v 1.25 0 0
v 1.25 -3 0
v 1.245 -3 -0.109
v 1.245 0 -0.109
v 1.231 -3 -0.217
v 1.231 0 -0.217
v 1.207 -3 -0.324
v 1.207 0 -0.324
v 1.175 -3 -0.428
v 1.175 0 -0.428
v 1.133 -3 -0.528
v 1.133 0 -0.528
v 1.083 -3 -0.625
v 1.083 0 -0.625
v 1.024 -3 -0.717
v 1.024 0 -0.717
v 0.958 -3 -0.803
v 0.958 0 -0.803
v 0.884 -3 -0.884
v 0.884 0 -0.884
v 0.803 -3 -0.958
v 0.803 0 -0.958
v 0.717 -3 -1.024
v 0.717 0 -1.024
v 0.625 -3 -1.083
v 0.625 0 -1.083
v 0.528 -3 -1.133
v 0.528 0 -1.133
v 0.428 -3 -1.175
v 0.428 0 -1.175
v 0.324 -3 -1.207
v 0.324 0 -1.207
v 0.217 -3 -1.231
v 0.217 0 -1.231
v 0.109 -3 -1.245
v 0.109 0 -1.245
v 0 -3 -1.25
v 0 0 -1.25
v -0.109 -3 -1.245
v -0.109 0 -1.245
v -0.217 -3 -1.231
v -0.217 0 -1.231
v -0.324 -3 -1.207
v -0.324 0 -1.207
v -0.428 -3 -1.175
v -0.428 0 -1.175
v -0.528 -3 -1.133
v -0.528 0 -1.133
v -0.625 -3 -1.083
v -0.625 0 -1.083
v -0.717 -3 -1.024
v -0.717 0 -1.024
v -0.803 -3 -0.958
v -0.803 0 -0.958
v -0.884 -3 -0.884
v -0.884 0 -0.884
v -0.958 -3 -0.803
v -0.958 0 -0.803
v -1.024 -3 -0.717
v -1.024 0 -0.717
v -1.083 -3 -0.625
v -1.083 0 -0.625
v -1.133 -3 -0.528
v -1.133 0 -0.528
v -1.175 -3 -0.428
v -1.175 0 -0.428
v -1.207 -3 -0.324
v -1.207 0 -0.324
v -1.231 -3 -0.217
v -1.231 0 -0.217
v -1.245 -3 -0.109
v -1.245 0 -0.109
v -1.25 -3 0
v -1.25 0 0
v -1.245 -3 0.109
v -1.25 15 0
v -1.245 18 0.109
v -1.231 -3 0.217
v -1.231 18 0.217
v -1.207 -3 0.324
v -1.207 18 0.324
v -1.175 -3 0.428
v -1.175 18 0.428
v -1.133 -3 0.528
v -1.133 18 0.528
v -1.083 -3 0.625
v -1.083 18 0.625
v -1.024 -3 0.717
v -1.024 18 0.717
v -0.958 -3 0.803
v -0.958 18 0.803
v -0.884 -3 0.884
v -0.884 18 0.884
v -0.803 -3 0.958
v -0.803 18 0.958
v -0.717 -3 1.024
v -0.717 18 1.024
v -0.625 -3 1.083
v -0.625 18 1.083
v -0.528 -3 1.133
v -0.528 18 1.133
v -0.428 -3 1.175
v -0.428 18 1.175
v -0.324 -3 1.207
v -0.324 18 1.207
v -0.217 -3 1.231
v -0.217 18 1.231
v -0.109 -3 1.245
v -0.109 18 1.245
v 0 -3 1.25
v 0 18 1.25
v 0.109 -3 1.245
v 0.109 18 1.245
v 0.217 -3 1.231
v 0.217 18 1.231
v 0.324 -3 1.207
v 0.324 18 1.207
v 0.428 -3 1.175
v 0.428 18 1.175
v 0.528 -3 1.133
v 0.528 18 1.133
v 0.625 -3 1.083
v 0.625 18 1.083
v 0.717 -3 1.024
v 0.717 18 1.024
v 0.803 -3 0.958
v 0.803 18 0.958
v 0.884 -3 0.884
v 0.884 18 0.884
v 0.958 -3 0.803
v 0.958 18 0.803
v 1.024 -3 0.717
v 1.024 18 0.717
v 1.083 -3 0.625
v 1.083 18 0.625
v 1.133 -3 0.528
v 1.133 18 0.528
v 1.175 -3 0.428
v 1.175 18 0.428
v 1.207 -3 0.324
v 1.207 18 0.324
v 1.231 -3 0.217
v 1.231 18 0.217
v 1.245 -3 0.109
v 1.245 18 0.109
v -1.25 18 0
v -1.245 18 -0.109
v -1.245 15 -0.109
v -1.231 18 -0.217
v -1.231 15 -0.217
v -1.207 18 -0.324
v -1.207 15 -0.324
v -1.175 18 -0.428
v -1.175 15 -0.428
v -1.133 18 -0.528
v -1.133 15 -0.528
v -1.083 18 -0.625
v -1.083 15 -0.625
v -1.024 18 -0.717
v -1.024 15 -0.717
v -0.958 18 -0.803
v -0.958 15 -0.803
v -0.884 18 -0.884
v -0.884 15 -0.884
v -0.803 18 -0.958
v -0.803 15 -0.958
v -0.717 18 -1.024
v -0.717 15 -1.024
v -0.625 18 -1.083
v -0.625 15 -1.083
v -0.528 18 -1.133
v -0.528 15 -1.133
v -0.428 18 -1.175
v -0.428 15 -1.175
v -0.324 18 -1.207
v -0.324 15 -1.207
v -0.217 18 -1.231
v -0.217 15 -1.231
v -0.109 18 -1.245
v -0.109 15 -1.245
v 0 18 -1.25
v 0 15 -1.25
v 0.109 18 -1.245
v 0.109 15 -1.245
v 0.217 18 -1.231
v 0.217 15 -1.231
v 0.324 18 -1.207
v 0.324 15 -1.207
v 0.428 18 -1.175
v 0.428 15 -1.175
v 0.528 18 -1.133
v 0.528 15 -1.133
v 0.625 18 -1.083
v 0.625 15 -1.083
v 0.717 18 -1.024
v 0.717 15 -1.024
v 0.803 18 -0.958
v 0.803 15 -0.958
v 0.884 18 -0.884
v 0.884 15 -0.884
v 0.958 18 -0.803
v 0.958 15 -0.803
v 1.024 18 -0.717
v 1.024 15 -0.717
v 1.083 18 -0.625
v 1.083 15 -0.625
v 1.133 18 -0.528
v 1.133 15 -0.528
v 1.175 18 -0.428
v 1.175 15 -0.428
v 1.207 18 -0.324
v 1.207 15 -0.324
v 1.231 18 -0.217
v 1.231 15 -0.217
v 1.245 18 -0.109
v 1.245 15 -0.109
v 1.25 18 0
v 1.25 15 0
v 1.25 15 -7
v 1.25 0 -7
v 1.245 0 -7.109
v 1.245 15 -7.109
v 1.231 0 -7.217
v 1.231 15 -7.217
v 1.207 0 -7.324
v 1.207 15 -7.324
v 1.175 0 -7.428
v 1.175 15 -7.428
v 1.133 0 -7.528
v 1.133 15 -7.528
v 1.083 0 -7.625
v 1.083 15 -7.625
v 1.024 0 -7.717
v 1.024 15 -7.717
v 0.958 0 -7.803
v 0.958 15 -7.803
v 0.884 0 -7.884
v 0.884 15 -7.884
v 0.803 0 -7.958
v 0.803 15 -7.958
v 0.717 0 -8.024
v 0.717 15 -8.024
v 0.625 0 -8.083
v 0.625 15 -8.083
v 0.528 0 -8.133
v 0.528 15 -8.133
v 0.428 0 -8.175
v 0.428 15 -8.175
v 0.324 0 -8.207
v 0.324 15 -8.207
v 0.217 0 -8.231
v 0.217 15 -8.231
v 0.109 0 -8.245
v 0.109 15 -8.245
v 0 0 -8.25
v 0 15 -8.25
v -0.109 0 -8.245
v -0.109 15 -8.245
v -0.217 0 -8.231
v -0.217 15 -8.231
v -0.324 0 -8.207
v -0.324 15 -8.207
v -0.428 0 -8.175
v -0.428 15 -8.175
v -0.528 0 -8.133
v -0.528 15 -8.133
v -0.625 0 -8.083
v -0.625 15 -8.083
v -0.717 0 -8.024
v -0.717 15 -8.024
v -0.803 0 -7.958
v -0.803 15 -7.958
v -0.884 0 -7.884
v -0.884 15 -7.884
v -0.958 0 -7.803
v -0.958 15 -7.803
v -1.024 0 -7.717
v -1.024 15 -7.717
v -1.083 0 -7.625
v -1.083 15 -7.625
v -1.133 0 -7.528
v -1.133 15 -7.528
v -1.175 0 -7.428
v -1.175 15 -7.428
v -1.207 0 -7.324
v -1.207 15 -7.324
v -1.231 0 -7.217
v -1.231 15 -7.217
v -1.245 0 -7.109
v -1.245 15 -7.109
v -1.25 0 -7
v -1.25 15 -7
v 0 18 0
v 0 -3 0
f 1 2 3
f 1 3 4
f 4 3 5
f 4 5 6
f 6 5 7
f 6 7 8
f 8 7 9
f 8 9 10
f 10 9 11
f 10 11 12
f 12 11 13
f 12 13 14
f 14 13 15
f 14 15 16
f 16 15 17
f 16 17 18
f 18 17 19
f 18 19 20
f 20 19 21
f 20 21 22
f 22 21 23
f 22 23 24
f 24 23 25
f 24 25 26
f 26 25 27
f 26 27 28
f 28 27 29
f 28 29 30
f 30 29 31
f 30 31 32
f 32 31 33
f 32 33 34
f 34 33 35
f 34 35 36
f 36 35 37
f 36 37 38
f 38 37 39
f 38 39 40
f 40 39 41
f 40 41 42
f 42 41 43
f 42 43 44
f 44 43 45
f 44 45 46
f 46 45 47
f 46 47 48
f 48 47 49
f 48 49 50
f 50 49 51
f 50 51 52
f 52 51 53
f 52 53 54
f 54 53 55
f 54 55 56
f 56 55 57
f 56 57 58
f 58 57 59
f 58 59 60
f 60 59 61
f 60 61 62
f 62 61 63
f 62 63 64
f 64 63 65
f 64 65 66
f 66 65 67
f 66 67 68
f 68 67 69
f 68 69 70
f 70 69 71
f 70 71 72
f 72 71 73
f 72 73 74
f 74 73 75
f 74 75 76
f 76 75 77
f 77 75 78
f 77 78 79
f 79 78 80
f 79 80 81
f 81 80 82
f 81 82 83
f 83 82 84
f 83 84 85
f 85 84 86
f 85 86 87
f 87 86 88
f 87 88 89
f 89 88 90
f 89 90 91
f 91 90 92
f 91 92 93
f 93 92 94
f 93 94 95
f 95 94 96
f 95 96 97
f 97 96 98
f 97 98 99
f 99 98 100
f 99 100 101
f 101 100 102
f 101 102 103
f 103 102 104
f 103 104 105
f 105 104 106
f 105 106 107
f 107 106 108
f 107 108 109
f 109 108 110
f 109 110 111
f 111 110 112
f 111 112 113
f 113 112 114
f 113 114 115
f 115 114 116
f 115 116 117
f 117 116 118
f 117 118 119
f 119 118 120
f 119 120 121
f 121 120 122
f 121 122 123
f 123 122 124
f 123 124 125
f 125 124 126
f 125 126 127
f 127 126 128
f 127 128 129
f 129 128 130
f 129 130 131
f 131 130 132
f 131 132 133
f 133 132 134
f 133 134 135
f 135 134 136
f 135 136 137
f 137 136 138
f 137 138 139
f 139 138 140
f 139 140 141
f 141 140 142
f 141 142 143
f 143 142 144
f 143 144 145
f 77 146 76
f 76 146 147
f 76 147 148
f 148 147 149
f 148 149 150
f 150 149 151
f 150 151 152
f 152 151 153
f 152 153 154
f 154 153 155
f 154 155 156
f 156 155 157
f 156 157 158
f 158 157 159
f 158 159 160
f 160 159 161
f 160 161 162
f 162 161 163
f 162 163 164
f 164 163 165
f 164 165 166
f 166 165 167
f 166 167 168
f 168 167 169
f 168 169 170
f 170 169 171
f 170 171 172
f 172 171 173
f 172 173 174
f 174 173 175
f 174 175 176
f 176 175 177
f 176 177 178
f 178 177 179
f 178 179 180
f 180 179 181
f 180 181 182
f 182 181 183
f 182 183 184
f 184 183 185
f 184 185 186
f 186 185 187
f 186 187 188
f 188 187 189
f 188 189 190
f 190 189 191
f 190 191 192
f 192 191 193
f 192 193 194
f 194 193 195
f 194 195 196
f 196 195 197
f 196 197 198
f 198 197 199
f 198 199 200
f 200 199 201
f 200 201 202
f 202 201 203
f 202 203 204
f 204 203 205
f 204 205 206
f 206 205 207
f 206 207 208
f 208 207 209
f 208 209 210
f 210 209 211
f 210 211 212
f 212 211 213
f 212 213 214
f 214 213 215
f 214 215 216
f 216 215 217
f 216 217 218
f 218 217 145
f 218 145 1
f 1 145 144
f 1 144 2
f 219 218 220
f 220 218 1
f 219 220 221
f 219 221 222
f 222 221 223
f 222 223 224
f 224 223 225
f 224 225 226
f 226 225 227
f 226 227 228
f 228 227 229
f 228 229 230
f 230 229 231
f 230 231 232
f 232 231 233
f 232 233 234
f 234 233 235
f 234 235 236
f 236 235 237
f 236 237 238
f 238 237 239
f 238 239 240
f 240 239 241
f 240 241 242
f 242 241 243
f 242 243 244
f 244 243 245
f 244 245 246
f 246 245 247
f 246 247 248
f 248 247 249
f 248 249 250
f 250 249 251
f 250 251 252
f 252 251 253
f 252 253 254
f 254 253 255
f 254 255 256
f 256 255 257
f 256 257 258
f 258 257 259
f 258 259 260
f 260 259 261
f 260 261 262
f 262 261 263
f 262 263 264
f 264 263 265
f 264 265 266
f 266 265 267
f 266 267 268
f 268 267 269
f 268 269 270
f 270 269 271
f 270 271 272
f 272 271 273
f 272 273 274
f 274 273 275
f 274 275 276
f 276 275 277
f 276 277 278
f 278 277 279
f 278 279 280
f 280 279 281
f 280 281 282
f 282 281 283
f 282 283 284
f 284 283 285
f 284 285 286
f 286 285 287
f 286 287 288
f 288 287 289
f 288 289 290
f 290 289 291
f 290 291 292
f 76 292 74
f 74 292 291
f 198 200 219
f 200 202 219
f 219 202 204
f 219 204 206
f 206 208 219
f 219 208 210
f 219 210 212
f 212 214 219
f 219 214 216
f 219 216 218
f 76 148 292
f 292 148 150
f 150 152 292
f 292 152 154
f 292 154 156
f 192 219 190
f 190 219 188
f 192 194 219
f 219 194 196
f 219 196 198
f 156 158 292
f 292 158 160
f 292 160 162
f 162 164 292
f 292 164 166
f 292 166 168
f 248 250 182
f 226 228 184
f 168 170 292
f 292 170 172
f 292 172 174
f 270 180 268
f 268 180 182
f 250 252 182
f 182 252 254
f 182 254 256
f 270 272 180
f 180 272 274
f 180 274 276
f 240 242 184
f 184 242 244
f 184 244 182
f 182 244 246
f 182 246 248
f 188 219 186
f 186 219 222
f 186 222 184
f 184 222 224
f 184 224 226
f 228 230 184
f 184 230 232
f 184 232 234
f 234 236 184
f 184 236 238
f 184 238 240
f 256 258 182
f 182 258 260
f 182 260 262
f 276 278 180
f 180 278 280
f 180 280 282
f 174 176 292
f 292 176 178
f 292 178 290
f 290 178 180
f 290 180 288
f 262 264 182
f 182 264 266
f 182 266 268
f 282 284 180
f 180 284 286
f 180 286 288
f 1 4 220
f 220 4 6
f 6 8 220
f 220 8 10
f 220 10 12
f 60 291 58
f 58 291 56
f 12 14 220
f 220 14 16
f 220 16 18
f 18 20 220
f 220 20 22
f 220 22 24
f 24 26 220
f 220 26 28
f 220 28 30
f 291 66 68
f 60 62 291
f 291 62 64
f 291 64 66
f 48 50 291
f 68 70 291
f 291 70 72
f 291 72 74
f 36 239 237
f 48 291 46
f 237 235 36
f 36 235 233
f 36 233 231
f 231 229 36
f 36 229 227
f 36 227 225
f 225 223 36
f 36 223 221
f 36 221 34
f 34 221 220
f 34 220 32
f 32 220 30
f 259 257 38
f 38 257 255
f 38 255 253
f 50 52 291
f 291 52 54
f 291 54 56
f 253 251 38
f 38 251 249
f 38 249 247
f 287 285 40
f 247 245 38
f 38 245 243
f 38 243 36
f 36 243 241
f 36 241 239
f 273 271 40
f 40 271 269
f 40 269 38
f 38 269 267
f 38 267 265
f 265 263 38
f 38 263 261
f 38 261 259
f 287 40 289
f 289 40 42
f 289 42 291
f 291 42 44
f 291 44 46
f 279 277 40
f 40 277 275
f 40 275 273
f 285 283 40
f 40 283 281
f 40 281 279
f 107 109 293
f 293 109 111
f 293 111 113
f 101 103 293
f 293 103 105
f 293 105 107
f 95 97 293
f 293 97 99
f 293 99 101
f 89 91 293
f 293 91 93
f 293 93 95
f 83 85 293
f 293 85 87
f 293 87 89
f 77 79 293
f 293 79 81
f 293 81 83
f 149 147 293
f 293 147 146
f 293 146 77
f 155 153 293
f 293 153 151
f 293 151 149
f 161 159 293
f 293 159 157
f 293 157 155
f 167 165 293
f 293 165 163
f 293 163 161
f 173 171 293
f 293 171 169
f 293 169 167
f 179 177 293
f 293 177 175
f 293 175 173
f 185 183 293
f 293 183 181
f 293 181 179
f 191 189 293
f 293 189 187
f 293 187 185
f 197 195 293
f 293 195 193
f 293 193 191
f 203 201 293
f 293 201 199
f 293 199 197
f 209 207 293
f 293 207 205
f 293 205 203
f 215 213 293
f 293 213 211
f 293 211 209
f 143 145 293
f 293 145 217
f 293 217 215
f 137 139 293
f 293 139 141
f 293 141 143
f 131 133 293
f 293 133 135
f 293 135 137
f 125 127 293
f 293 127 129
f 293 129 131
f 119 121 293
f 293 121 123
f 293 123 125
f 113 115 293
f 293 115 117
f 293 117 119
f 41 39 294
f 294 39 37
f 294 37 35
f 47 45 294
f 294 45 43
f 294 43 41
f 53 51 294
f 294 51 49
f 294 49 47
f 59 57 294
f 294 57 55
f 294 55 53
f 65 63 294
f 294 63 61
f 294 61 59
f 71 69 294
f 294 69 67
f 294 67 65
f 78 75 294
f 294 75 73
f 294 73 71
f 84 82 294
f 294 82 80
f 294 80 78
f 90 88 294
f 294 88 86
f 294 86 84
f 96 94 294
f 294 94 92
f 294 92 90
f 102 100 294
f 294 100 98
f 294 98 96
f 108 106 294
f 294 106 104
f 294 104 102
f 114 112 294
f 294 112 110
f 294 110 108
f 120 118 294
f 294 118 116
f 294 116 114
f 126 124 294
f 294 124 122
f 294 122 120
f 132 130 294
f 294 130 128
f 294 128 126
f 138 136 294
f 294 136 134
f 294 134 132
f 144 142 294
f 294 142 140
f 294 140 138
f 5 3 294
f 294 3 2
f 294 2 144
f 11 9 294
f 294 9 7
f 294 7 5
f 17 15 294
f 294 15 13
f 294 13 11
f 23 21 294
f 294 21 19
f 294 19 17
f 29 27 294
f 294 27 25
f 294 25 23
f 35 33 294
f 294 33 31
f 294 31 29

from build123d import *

# Parameters (mm, degrees)
EXTRUDE_1_DEPTH = 15
SKETCH_2_R      = 1.25
EXTRUDE_2_DEPTH = 3
EXTRUDE_START   = 3
SKETCH_3_R      = 1.25
EXTRUDE_3_DEPTH = 3


with BuildPart() as part:
    # 草图1 → 凸台-拉伸1 (new body)
    with BuildSketch(Plane(origin=(0, 0, 0), x_dir=(1, 0, 0), z_dir=(0, 1, 0))):
        with BuildLine():
            Line((-1.25, 0), (-1.25, 7))
            ThreePointArc((-1.25, 7), (0, 8.25), (1.25, 7))
            Line((1.25, 7), (1.25, 0))
            ThreePointArc((1.25, 0), (0, -1.25), (-1.25, 0))
        make_face()
    extrude(amount=EXTRUDE_1_DEPTH)

    # 草图2 → 凸台-拉伸2 (add)
    with BuildSketch(Plane(origin=(0, 15, 0), x_dir=(1, 0, 0), z_dir=(0, 1, 0))):
        Circle(SKETCH_2_R)
    extrude(amount=EXTRUDE_2_DEPTH)

    # 草图3 → 凸台-拉伸3 (add)
    with BuildSketch(Plane.XZ.offset(EXTRUDE_START)):
        with Locations(Location((0, 0, 0), (0, 0, 270))):
            Circle(SKETCH_3_R)
    extrude(amount=-EXTRUDE_3_DEPTH)


solid = part.part
